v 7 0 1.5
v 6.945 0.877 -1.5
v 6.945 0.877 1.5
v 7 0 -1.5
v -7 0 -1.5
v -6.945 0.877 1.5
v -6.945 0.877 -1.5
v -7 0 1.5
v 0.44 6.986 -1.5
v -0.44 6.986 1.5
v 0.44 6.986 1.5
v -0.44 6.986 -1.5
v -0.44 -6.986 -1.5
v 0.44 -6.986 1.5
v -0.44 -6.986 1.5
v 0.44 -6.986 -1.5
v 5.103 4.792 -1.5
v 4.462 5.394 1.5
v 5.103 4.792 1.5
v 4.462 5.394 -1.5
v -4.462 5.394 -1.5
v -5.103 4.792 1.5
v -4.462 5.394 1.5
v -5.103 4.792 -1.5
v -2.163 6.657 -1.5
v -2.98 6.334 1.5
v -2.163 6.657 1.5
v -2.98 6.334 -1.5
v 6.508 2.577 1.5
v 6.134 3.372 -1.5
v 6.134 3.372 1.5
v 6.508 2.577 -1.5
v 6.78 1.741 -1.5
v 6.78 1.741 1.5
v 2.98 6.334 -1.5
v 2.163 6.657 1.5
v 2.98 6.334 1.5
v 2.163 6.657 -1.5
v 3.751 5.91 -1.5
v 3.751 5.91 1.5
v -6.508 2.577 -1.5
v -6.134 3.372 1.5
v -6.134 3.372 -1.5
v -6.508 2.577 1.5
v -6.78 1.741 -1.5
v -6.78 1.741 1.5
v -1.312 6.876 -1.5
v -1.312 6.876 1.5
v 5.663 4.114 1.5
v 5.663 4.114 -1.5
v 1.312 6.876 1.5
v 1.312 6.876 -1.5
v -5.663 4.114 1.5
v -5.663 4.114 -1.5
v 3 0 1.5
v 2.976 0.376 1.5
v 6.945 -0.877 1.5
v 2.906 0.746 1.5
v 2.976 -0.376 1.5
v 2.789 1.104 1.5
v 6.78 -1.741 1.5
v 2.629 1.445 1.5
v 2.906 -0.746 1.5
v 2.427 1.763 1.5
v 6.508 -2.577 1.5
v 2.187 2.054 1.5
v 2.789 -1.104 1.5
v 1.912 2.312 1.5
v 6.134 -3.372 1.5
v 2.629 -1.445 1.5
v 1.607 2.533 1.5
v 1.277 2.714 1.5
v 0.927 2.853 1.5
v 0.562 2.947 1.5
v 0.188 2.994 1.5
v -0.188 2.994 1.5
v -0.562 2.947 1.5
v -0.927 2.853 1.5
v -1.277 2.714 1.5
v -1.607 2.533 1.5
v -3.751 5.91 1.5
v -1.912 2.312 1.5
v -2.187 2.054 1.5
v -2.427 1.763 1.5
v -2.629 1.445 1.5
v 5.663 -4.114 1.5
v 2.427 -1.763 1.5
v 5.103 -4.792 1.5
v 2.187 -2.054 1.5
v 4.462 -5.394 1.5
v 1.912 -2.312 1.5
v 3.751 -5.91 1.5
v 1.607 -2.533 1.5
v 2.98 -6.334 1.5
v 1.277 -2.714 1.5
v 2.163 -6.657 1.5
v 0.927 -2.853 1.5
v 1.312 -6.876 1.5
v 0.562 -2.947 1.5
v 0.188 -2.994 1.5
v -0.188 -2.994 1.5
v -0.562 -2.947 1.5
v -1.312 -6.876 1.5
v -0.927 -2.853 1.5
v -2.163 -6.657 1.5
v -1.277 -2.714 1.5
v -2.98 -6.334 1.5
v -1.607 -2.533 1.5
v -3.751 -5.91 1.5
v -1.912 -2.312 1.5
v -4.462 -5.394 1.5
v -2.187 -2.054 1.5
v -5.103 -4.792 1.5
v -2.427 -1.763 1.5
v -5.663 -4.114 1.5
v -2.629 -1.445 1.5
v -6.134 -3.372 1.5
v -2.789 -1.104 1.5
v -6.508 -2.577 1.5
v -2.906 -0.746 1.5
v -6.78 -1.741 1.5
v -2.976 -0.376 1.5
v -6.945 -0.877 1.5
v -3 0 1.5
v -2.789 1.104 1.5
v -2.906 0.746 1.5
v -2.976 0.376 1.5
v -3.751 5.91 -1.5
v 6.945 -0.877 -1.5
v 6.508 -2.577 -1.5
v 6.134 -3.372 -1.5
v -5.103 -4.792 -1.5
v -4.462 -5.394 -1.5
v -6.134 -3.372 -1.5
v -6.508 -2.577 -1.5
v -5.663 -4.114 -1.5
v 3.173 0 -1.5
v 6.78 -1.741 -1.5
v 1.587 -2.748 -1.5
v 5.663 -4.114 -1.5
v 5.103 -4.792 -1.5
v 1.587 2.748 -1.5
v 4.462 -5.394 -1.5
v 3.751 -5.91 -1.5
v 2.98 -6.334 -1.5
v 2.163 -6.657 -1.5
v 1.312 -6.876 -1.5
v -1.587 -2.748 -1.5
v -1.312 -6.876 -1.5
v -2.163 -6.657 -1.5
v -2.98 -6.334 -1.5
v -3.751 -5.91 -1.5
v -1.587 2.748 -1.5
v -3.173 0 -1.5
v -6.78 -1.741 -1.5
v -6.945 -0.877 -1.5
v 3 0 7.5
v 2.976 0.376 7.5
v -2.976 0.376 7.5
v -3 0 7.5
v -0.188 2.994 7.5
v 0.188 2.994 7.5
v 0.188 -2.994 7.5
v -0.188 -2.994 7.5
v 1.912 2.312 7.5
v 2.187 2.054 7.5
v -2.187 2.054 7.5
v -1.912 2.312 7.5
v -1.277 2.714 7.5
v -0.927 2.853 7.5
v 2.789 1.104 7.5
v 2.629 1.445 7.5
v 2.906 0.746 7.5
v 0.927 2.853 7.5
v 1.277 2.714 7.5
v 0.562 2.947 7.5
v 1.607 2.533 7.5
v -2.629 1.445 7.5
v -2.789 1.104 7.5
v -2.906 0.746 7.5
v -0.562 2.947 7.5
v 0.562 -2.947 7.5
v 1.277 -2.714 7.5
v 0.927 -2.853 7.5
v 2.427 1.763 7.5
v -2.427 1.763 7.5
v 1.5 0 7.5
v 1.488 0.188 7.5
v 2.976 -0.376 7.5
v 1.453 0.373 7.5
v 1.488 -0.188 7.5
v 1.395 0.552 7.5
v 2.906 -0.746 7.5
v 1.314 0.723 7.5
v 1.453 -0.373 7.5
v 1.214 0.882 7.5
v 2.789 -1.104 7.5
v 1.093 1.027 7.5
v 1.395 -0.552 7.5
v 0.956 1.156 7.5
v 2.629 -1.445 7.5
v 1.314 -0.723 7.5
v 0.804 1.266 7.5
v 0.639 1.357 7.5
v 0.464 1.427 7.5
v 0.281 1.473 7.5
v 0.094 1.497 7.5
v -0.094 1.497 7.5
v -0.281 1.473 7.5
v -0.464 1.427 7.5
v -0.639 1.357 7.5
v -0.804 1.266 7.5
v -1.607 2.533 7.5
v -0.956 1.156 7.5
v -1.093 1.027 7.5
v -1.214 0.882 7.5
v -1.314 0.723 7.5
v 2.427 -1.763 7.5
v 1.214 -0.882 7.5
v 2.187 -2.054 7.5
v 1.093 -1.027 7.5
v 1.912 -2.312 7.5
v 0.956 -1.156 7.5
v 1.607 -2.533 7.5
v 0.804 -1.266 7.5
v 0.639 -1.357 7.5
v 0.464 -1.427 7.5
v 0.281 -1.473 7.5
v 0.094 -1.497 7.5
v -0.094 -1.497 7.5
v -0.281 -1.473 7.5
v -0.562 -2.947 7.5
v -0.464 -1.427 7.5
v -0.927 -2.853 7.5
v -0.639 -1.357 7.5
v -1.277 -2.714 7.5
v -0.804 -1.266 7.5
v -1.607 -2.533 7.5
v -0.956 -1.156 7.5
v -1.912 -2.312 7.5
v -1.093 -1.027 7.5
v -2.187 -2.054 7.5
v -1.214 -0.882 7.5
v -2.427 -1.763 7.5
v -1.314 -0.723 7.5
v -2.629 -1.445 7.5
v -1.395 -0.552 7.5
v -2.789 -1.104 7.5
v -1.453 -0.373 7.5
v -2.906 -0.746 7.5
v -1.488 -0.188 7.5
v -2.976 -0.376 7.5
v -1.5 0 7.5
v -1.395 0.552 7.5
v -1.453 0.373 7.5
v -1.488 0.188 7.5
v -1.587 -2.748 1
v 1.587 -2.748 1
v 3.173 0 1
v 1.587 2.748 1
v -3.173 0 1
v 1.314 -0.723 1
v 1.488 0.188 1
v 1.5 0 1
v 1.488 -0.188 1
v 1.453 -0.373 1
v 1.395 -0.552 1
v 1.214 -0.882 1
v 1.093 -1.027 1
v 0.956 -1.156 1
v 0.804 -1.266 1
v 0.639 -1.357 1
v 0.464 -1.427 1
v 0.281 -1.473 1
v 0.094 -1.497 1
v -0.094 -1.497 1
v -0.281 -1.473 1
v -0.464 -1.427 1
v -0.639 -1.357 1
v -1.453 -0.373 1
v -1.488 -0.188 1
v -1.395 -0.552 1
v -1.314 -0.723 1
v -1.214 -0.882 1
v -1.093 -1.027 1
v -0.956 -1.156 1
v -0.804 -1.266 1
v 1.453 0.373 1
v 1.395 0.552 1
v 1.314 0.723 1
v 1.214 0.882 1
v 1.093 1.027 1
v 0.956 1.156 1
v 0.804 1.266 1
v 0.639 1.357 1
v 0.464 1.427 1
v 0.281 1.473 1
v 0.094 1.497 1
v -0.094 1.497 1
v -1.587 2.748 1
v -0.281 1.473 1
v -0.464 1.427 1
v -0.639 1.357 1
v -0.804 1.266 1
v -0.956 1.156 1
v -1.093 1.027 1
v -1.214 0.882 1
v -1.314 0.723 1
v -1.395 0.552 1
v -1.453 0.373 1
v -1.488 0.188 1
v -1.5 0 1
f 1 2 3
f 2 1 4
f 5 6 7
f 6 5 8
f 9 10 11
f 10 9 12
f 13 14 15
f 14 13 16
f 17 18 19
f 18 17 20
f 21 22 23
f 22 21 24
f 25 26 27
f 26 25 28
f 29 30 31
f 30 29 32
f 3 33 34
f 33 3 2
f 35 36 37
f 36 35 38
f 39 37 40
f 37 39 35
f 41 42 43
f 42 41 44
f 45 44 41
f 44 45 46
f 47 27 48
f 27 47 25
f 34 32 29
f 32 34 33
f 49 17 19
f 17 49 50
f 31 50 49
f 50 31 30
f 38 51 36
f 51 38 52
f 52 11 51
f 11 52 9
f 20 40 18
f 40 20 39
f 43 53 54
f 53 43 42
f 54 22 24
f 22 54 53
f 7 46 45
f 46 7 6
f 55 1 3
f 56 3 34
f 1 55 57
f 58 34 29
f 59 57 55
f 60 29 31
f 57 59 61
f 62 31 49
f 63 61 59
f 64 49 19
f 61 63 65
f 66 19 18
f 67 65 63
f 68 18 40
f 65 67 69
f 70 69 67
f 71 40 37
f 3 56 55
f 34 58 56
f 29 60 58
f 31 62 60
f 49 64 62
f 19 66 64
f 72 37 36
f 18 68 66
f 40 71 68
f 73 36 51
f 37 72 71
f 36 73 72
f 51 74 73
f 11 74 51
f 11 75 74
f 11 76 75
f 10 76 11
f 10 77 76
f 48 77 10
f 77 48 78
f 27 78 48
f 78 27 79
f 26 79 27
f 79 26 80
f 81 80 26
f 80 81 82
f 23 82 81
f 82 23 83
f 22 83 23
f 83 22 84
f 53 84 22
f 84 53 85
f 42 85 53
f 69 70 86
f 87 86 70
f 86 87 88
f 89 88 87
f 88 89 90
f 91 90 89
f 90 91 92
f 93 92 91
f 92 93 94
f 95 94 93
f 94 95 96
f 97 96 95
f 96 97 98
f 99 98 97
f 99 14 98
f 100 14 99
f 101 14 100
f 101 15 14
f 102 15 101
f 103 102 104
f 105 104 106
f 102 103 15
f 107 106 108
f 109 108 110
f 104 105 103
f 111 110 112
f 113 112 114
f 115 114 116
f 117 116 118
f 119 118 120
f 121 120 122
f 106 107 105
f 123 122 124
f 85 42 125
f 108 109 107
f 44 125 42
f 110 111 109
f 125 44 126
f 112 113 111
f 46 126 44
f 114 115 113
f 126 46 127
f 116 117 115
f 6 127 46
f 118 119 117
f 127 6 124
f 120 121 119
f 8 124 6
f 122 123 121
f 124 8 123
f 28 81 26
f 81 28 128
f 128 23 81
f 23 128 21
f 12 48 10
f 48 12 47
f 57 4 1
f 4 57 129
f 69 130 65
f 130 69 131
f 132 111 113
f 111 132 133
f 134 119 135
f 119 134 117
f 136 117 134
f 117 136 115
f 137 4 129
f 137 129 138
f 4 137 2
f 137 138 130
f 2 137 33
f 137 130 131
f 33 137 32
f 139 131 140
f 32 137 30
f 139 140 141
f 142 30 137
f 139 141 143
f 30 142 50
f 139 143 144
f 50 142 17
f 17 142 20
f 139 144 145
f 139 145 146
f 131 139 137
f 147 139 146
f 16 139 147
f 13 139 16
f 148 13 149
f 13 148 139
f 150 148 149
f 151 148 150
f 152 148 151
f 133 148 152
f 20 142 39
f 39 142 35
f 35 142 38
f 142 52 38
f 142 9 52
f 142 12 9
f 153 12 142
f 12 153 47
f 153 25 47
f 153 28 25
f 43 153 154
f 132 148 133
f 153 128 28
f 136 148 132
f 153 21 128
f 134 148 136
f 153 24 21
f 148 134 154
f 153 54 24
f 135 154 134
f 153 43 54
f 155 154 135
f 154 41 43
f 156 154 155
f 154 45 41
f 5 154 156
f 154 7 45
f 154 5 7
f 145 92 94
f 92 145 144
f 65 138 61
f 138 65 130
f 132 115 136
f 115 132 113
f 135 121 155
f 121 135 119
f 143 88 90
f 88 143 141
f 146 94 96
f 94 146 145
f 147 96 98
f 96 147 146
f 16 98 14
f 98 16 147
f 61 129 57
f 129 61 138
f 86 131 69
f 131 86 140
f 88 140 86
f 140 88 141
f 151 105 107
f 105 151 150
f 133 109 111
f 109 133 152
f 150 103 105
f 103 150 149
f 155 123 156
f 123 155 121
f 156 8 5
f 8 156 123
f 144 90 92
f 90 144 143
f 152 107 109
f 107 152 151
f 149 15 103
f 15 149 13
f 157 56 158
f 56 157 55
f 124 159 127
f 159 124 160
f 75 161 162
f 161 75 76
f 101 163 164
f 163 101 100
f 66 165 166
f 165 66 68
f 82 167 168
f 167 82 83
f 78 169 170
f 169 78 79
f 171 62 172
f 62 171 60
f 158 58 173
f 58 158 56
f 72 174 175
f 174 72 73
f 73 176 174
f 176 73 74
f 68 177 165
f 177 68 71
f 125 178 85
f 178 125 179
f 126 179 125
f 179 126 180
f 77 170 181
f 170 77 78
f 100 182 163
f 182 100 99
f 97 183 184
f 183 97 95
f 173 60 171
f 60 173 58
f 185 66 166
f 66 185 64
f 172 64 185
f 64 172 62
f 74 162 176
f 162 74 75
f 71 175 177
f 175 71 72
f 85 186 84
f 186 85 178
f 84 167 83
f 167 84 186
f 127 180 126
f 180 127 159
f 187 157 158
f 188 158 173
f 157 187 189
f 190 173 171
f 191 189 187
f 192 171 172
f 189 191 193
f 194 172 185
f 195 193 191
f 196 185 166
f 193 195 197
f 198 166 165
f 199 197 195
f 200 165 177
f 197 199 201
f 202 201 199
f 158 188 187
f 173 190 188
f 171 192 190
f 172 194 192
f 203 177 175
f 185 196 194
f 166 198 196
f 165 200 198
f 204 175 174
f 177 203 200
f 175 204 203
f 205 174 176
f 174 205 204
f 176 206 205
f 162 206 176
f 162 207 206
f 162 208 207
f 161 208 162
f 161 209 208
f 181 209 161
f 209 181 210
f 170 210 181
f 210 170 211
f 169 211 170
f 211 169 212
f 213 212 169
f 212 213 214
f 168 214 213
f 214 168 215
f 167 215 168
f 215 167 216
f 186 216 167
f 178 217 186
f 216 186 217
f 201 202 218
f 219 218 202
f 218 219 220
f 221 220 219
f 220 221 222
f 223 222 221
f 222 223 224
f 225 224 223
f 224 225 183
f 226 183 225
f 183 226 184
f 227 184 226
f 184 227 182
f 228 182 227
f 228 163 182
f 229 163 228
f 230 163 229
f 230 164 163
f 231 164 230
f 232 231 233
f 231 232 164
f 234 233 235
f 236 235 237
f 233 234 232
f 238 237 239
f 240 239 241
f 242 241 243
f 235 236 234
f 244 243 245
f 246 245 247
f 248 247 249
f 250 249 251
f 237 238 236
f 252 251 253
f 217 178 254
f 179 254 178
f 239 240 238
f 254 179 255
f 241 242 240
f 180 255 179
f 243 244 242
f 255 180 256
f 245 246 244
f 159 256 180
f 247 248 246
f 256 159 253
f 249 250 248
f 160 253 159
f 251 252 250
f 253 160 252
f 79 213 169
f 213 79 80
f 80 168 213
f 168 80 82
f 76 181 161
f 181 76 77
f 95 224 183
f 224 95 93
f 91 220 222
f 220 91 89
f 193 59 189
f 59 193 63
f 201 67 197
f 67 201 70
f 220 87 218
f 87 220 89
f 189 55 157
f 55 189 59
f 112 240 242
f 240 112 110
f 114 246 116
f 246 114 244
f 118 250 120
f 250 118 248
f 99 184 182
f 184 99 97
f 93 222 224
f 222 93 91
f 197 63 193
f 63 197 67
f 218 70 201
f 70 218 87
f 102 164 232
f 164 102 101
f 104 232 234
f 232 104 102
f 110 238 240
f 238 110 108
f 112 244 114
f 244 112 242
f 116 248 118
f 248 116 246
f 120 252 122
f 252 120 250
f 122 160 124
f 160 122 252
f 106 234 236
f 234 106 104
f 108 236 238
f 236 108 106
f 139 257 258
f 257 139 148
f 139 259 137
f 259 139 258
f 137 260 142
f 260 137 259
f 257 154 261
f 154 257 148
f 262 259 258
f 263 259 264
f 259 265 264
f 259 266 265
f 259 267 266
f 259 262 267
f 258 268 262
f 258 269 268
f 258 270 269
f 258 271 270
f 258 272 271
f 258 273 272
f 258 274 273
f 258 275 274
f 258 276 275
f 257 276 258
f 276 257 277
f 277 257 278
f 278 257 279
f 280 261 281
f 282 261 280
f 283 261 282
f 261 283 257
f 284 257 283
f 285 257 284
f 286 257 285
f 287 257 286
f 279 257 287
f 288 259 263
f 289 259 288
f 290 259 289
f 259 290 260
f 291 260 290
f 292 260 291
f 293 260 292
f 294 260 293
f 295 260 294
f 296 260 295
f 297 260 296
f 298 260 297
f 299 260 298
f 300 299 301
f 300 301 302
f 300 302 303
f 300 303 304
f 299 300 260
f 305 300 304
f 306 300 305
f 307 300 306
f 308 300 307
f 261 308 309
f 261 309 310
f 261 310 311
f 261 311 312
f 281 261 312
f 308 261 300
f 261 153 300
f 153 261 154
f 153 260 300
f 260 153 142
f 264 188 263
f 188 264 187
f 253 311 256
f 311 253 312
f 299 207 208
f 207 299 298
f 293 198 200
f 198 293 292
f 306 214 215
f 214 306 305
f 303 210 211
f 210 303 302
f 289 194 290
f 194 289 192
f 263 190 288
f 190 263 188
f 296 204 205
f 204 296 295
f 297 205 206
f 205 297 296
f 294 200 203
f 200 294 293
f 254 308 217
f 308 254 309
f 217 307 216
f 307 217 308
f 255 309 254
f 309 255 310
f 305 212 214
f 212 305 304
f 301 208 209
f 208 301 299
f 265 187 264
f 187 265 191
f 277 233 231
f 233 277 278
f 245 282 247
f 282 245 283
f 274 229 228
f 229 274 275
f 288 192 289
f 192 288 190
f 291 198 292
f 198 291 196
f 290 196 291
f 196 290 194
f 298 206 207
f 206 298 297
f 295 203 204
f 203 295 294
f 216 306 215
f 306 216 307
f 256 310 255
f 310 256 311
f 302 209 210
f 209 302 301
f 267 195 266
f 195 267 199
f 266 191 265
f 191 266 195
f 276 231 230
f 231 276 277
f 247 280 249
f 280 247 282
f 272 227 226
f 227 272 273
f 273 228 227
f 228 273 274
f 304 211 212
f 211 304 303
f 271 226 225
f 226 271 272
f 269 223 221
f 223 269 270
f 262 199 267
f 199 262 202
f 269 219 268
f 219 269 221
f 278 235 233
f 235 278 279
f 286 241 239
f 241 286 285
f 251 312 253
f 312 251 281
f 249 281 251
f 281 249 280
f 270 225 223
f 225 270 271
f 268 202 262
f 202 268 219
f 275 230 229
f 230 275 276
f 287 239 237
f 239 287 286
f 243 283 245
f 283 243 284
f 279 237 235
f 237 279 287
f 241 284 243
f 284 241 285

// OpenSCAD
$fn = 50;


difference() {
	union() {
		translate(v = [0, 0, -1.5000000000]) {
			cylinder(h = 3, r = 7.0000000000);
		}
		translate(v = [0, 0, -1.5000000000]) {
			cylinder(h = 9, r = 3.0000000000);
		}
	}
	union() {
		translate(v = [0, 0, -1.5000000000]) {
			rotate(a = [0, 0, 0]) {
				difference() {
					union() {
						linear_extrude(height = 2.5000000000) {
							polygon(points = [[3.1735000000, 0.0000000000], [1.5867500000, 2.7483316189], [-1.5867500000, 2.7483316189], [-3.1735000000, 0.0000000000], [-1.5867500000, -2.7483316189], [1.5867500000, -2.7483316189]]);
						}
					}
					union();
				}
			}
		}
		translate(v = [0, 0, -50.0000000000]) {
			cylinder(h = 100, r = 1.5000000000);
		}
	}
}
